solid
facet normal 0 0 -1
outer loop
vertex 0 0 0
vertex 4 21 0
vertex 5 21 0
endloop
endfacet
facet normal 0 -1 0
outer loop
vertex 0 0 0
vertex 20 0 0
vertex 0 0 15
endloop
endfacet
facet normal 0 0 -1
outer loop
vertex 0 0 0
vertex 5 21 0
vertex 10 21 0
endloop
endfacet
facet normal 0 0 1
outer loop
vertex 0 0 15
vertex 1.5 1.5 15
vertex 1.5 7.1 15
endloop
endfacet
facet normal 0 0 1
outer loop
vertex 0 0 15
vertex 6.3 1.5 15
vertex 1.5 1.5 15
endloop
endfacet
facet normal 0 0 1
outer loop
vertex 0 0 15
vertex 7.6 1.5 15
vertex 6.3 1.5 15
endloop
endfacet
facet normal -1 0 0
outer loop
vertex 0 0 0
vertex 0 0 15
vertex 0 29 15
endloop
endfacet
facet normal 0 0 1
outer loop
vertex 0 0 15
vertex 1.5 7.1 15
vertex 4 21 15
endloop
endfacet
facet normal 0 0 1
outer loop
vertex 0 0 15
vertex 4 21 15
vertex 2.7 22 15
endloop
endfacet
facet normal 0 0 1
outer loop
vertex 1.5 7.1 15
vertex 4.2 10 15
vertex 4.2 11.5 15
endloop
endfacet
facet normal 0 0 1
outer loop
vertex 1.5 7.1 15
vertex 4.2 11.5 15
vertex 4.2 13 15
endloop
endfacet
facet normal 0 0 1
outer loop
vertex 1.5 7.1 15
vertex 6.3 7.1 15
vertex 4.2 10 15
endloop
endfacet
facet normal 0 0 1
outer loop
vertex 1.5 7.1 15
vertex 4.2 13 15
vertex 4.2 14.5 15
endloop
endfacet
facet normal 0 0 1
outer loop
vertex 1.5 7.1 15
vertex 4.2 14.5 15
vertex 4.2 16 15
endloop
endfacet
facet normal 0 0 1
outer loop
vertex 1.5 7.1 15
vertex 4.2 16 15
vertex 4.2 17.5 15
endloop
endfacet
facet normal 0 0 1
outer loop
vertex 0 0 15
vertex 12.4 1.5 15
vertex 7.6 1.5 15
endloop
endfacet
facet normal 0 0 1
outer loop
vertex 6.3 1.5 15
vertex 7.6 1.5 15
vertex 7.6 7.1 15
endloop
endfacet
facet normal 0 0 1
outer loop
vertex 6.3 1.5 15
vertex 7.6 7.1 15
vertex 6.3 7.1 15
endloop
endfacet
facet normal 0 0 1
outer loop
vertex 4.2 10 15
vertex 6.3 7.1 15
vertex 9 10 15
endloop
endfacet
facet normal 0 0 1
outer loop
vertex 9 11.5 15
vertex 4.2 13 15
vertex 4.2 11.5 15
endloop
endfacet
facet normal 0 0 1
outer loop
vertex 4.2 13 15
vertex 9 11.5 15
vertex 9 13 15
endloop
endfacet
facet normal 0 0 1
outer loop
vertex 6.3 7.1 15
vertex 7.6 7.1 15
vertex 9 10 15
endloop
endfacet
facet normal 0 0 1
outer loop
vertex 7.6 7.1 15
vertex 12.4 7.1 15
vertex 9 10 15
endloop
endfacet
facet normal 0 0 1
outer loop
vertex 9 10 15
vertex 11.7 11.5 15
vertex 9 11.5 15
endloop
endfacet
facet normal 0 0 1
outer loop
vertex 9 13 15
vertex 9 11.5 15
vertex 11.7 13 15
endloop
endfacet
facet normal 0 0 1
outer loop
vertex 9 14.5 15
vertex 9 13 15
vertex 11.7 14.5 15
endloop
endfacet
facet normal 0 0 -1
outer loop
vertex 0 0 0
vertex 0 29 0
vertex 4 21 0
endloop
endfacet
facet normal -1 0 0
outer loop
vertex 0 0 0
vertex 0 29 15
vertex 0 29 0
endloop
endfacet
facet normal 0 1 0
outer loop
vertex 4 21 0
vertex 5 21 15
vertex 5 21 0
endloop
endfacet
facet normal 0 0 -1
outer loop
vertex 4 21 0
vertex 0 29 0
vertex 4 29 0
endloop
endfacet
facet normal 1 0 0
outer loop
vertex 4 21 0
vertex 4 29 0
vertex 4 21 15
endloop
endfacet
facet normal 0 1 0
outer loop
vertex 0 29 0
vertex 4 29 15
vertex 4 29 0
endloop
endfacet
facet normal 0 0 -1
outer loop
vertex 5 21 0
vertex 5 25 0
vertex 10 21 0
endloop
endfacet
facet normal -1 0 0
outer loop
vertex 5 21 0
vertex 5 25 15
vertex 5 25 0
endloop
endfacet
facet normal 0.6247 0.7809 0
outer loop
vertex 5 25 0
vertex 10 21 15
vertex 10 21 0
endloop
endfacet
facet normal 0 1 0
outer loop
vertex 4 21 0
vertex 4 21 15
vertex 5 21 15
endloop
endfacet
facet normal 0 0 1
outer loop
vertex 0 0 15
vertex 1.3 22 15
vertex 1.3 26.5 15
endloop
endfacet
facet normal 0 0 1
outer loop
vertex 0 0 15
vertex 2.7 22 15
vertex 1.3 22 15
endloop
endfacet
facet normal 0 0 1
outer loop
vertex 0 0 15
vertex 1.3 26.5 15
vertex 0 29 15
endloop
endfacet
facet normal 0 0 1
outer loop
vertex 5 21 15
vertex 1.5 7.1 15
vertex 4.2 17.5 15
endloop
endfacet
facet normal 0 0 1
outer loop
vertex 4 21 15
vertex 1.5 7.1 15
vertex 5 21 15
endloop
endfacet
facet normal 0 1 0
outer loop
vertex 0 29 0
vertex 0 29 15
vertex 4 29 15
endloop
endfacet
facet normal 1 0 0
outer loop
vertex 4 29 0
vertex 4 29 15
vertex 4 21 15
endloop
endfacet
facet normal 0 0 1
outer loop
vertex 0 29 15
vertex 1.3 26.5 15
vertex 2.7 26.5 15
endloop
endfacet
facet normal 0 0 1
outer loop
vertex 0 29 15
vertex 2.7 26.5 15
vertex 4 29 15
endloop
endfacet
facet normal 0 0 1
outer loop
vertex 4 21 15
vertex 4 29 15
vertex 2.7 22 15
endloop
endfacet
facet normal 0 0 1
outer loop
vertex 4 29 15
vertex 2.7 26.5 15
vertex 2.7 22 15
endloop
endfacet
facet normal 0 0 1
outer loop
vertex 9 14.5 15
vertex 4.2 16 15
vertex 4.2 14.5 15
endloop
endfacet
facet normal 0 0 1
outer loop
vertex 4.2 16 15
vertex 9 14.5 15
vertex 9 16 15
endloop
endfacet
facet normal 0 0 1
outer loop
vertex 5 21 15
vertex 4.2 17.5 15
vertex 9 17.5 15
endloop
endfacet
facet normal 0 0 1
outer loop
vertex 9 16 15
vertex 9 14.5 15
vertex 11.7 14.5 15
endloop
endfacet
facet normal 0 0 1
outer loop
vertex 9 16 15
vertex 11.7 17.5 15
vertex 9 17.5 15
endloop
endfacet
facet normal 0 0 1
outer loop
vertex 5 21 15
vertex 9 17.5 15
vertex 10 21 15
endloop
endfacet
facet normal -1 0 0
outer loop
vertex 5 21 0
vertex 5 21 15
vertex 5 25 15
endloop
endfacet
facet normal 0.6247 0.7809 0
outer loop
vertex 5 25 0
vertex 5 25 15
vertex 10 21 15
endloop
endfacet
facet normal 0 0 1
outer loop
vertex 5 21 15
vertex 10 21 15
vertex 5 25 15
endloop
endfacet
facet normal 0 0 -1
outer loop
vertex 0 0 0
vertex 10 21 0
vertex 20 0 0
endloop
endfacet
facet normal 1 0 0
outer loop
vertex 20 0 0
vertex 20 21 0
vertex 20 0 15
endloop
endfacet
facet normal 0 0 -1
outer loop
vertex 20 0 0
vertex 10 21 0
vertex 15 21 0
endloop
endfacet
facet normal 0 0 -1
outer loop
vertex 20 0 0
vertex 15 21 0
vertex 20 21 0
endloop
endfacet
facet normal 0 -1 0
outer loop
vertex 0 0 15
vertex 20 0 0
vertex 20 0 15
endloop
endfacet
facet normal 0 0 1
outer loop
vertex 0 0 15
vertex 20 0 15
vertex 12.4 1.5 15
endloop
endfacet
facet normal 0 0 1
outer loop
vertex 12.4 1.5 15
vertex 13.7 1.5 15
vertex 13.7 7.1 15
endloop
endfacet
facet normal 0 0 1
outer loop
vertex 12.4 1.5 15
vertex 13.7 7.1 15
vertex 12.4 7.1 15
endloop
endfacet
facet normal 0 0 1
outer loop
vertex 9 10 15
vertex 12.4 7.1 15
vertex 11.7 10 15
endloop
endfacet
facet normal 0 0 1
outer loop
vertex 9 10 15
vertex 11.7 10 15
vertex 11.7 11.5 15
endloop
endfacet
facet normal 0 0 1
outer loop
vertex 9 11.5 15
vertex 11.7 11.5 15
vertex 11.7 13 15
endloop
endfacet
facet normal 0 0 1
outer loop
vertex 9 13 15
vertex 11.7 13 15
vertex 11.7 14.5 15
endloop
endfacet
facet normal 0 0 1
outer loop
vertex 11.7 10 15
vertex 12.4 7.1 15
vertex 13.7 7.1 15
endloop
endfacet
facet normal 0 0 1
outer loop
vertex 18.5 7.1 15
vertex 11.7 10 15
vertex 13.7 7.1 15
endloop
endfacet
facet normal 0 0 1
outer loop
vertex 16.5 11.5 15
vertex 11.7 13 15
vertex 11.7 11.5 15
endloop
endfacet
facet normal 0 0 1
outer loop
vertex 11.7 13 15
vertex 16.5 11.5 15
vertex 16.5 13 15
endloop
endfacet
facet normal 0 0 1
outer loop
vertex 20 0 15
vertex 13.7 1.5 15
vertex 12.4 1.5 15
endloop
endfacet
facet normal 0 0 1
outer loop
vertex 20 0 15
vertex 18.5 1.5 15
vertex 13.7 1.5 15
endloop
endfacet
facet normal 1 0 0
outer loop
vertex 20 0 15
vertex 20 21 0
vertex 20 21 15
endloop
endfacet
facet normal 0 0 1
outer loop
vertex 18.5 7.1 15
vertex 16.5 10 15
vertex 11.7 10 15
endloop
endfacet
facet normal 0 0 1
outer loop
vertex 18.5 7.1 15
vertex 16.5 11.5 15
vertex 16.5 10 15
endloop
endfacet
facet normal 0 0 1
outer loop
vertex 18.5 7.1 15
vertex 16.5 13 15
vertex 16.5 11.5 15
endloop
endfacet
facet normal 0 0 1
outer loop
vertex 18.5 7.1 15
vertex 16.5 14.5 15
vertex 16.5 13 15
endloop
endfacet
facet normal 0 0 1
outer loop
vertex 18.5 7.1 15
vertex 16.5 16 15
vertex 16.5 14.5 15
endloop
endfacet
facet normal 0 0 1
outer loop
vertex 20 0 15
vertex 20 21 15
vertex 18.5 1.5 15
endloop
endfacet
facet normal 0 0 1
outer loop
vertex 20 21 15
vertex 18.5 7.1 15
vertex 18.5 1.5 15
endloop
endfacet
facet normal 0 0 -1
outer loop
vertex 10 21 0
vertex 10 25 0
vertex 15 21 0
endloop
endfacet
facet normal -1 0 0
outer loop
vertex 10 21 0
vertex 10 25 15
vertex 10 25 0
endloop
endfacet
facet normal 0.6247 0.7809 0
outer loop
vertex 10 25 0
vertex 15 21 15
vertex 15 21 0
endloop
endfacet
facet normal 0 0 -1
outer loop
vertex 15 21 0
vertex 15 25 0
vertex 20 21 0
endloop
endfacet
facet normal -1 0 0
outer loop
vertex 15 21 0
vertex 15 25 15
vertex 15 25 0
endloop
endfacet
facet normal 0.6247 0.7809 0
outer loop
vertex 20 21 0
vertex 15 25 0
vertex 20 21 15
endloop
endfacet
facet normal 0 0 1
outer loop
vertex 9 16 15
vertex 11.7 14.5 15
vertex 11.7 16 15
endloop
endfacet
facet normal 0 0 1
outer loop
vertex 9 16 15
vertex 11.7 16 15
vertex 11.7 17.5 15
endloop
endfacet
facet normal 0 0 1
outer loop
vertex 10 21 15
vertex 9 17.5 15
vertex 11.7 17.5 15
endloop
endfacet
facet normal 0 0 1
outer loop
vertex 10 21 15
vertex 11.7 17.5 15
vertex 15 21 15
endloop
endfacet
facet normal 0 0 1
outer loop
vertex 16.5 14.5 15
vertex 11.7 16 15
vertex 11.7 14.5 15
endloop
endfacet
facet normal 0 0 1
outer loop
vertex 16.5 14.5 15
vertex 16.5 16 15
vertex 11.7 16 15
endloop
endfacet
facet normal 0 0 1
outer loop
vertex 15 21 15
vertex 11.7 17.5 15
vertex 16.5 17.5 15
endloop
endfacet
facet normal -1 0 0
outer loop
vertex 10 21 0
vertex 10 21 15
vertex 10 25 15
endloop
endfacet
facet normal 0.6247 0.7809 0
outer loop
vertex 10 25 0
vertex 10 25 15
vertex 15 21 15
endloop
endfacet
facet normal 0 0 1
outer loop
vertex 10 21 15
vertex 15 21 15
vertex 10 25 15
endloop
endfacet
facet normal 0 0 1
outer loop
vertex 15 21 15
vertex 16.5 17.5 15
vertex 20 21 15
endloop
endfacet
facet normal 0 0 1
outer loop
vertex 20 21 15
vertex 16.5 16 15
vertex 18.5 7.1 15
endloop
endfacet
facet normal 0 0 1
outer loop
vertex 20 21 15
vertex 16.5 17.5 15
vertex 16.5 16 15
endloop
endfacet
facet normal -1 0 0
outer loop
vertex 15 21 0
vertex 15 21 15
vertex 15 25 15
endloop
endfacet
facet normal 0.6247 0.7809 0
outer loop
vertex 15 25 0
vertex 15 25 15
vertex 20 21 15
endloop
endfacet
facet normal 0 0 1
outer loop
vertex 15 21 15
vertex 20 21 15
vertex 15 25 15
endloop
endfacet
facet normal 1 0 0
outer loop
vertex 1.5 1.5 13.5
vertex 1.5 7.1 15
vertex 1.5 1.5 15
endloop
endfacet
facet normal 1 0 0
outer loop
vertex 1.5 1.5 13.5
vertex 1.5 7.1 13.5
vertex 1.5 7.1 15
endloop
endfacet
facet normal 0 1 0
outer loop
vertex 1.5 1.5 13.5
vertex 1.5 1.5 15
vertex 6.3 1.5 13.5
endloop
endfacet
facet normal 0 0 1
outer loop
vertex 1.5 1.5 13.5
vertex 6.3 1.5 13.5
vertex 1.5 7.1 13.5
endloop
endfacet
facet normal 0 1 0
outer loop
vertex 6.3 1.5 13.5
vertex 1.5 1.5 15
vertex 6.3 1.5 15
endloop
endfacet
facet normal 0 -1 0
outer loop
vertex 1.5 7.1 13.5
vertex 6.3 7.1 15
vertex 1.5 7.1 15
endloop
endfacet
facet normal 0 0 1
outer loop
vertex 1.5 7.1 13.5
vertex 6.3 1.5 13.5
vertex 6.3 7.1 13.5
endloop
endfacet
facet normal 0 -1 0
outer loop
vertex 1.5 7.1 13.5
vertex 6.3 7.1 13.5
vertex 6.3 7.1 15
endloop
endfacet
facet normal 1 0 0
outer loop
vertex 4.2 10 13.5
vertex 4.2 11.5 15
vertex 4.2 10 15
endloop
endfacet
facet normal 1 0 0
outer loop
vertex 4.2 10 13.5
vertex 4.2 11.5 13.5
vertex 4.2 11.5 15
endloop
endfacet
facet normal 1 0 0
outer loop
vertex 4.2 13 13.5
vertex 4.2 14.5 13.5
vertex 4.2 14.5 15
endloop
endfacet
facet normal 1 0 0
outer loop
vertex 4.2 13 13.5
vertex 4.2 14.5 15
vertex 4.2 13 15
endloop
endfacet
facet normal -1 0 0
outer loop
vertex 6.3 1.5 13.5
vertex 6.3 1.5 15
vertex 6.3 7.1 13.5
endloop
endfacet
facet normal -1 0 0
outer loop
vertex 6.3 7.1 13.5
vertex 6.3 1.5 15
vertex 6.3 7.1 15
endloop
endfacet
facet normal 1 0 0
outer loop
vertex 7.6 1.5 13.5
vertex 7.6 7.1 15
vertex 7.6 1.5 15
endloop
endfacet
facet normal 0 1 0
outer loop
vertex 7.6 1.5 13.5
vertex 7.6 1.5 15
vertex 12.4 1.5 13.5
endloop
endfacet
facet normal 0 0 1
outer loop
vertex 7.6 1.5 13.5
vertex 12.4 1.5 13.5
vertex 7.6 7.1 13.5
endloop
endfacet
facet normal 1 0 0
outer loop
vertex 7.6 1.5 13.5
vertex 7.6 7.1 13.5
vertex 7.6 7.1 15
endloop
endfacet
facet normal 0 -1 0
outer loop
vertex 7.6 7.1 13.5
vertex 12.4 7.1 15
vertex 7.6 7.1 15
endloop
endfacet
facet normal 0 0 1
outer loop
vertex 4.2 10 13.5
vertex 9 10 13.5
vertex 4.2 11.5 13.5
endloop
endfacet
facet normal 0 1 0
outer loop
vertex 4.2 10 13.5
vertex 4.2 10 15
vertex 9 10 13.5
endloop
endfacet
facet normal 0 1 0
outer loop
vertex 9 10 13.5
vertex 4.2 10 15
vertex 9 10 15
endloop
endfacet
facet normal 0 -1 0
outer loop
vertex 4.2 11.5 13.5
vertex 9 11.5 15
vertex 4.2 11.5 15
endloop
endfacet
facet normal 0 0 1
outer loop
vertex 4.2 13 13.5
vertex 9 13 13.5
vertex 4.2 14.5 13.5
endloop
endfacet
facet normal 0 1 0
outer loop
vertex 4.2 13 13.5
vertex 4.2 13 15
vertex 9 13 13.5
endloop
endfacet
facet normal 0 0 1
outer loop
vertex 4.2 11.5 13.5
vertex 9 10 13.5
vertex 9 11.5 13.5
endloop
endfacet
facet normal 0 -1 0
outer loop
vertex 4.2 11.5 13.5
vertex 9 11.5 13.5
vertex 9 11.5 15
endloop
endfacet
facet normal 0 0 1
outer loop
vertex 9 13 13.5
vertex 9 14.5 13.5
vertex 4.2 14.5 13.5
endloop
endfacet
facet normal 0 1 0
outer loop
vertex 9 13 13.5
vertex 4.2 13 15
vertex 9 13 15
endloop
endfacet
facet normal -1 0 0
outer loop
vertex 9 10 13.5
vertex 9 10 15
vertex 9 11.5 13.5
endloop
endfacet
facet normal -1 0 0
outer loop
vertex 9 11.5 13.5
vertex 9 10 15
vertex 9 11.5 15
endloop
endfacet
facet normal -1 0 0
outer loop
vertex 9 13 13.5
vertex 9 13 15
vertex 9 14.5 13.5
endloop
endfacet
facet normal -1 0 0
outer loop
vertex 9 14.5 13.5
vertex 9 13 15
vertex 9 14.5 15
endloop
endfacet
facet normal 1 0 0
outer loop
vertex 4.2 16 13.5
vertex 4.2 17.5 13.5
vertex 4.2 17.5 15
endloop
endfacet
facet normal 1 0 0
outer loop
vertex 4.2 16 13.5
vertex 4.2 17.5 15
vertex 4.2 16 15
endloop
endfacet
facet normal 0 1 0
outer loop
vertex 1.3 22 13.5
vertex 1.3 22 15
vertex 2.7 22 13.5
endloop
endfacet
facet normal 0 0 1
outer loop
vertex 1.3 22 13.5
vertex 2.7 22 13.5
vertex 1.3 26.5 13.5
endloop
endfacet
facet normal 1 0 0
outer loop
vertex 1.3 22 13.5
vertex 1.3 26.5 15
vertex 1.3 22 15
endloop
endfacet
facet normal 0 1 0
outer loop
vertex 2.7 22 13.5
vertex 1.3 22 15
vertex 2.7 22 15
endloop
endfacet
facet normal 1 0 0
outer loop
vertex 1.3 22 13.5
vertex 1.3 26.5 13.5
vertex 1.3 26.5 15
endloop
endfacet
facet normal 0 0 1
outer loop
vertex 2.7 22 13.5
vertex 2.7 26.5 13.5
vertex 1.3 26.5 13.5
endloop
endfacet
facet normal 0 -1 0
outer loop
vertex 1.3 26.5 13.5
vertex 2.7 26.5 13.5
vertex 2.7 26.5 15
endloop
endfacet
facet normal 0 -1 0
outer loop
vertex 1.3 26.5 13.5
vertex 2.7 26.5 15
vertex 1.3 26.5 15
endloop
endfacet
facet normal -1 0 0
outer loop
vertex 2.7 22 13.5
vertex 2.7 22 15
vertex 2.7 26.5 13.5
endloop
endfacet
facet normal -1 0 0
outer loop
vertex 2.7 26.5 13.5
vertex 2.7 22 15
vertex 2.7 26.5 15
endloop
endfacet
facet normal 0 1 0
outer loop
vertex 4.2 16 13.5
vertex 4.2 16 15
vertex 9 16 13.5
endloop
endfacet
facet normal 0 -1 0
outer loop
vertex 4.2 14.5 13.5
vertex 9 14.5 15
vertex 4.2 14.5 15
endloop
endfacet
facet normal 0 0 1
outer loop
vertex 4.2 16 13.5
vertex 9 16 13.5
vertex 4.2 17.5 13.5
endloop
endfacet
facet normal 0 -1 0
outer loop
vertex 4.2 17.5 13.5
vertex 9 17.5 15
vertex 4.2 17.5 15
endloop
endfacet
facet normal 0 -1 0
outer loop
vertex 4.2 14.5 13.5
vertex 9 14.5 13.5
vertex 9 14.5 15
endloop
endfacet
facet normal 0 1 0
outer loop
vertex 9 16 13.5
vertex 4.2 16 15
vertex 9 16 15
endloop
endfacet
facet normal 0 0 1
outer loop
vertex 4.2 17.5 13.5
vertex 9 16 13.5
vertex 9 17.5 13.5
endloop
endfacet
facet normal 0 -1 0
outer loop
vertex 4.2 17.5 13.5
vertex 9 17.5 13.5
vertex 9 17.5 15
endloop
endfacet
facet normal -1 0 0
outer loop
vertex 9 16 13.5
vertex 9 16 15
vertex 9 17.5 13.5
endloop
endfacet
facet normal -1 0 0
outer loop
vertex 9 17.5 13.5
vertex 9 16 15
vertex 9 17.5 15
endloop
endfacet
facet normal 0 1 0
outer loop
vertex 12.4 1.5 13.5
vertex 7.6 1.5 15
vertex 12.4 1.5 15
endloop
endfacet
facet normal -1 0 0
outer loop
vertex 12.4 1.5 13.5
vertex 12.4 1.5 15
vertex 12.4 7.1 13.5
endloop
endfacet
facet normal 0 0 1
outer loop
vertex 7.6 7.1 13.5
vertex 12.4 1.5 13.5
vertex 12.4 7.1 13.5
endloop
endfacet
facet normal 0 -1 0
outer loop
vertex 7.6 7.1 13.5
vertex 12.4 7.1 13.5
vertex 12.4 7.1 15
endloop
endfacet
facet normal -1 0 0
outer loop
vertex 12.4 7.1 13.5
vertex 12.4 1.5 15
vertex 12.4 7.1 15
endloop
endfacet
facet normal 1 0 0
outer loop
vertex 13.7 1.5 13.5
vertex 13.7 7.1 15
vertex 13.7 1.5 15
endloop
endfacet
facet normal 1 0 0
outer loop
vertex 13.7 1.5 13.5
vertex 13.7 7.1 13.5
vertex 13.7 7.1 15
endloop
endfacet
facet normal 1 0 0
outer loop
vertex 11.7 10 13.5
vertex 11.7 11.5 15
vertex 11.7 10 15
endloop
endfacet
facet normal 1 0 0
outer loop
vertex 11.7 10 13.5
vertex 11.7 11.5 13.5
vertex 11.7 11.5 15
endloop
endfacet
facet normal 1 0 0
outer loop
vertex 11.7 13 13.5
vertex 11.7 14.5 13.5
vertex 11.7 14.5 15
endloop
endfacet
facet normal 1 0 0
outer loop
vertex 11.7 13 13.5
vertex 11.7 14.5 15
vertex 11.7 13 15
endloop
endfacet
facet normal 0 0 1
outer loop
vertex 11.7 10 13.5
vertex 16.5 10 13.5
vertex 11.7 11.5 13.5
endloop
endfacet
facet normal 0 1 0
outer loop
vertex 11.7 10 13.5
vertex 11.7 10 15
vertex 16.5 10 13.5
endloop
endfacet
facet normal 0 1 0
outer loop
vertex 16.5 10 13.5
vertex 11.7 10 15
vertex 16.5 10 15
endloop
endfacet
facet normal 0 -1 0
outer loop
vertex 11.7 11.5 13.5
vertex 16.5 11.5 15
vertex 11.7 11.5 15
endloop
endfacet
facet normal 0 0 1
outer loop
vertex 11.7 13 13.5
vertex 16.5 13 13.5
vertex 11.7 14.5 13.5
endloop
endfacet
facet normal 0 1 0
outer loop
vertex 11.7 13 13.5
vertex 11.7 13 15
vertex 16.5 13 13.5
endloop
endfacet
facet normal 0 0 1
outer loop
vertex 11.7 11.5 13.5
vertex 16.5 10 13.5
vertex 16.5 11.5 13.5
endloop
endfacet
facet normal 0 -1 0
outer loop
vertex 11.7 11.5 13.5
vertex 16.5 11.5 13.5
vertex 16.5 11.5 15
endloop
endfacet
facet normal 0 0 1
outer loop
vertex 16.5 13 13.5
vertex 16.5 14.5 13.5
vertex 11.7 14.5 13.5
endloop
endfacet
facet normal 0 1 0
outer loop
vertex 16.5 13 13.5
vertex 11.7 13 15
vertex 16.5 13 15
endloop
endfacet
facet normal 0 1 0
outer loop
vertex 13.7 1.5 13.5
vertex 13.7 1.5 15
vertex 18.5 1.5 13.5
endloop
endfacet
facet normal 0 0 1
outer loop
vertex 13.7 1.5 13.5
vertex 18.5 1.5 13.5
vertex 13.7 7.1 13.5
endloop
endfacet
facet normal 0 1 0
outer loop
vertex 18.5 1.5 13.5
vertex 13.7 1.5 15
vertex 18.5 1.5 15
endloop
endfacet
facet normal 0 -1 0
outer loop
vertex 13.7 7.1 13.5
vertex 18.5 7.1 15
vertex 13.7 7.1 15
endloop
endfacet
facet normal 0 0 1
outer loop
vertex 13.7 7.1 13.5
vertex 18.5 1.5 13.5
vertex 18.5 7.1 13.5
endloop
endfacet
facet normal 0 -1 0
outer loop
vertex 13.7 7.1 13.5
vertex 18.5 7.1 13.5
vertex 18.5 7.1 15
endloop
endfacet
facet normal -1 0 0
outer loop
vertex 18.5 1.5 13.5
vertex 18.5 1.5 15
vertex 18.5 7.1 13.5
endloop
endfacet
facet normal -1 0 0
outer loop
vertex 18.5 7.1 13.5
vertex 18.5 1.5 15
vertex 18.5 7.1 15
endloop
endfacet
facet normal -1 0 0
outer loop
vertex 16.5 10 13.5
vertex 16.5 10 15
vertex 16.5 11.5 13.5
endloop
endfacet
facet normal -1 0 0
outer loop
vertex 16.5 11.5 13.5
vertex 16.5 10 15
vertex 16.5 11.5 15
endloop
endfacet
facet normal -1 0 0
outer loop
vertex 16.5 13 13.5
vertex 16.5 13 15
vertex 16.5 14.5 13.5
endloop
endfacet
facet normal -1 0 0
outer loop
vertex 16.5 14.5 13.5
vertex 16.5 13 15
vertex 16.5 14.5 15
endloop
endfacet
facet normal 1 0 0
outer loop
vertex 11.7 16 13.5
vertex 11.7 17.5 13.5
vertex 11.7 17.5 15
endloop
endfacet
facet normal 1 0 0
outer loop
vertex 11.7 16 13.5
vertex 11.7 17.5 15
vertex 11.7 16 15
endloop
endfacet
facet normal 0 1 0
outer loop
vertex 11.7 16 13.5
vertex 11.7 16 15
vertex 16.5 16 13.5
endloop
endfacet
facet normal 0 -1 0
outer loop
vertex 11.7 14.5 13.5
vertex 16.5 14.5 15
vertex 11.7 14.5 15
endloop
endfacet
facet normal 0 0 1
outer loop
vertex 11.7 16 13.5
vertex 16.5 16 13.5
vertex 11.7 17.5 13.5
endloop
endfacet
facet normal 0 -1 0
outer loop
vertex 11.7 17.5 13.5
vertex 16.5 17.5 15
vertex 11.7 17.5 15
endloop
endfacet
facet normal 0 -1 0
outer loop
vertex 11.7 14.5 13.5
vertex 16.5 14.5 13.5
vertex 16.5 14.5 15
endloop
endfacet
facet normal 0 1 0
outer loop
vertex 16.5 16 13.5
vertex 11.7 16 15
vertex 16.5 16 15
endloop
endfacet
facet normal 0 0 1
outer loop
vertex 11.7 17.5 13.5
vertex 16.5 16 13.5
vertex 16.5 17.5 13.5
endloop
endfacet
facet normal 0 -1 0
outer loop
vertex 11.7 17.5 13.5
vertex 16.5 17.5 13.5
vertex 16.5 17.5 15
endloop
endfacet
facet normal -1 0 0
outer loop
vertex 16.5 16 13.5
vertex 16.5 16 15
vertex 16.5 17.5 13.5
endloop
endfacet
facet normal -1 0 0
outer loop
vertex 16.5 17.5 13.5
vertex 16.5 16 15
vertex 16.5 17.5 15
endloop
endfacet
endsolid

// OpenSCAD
// Building miniatures — Tech, AI & Digital
// Units: millimetres. X = width; Y = facade height; Z = depth.
// Print flat on the back at Z=0. Front Z=15; recesses are 1.5 mm deep.
$fn=96;
depth=15;
recess=1.5;
module rect(x,y,w,h) { translate([x,y]) square([w,h]); }
module disc(x,y,r) { translate([x,y]) circle(r=r); }
module rr(x,y,w,h,r=1) { hull() for(a=[x+r,x+w-r],b=[y+r,y+h-r]) disc(a,b,r); }
module stroke(a,b,w=1.4) { hull() {disc(a[0],a[1],w/2);disc(b[0],b[1],w/2);} }
module ring(x,y,r,w=1.4) { difference(){disc(x,y,r);disc(x,y,r-w);} }
module framed(x,y,w,h,t=1.4) { difference(){rect(x,y,w,h);rect(x+t,y+t,w-2*t,h-2*t);} }
module arrow(a,b,w=1.5) { v=b-a; u=v/norm(v); n=[-u[1],u[0]]; tip=b; neck=b-u*2.8; stroke(a,neck,w); polygon([tip,neck+n*1.9,neck-n*1.9]); }
module building(){difference(){linear_extrude(height=depth) silhouette();translate([0,0,depth-recess]) linear_extrude(height=recess+0.2) details();}}
building();

module silhouette(){union(){polygon([[0,0],[20,0],[20,21],[15,25],[15,21],[10,25],[10,21],[5,25],[5,21],[0,21]]);rect(0,19,4,10);}}
module details(){
 for(x=[1.5,7.6,13.7]) rect(x,1.5,4.8,5.6);
 for(x=[4.2,11.7]) for(y=[10,13.0,16.0]) rect(x,y,4.8,1.5);
 rect(1.3,22,1.4,4.5);
}
